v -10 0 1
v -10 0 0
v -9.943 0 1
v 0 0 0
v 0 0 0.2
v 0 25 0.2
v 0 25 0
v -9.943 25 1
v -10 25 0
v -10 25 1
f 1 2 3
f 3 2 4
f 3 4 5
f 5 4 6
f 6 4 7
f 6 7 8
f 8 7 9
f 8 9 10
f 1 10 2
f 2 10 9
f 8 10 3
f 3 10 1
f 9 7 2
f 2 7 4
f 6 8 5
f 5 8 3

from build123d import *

# Parameters (mm, degrees)
SKETCH1_W           = 10
SKETCH1_H           = 25
BOSS_EXTRUDE1_DEPTH = 1
CHAMFER1_SIZE       = 0.8
CHAMFER1_SIZE2      = 9.943064816


with BuildPart() as part:
    # Sketch1 → Boss-Extrude1 (new body)
    with BuildSketch(Plane.XY):
        with Locations((-5, 12.5)):
            Rectangle(SKETCH1_W, SKETCH1_H)
    extrude(amount=BOSS_EXTRUDE1_DEPTH)

    # Chamfer1
    chamfer1_edges = [part.edges().sort_by_distance(p)[0] for p in [
        (0, 12.5, 1),
    ]]
    chamfer1_side = [part.faces().sort_by_distance(p)[0] for p in [
        (0, 12.5, 0.5),
    ]]
    chamfer(chamfer1_edges, length=CHAMFER1_SIZE, length2=CHAMFER1_SIZE2, reference=chamfer1_side[0])


solid = part.part
